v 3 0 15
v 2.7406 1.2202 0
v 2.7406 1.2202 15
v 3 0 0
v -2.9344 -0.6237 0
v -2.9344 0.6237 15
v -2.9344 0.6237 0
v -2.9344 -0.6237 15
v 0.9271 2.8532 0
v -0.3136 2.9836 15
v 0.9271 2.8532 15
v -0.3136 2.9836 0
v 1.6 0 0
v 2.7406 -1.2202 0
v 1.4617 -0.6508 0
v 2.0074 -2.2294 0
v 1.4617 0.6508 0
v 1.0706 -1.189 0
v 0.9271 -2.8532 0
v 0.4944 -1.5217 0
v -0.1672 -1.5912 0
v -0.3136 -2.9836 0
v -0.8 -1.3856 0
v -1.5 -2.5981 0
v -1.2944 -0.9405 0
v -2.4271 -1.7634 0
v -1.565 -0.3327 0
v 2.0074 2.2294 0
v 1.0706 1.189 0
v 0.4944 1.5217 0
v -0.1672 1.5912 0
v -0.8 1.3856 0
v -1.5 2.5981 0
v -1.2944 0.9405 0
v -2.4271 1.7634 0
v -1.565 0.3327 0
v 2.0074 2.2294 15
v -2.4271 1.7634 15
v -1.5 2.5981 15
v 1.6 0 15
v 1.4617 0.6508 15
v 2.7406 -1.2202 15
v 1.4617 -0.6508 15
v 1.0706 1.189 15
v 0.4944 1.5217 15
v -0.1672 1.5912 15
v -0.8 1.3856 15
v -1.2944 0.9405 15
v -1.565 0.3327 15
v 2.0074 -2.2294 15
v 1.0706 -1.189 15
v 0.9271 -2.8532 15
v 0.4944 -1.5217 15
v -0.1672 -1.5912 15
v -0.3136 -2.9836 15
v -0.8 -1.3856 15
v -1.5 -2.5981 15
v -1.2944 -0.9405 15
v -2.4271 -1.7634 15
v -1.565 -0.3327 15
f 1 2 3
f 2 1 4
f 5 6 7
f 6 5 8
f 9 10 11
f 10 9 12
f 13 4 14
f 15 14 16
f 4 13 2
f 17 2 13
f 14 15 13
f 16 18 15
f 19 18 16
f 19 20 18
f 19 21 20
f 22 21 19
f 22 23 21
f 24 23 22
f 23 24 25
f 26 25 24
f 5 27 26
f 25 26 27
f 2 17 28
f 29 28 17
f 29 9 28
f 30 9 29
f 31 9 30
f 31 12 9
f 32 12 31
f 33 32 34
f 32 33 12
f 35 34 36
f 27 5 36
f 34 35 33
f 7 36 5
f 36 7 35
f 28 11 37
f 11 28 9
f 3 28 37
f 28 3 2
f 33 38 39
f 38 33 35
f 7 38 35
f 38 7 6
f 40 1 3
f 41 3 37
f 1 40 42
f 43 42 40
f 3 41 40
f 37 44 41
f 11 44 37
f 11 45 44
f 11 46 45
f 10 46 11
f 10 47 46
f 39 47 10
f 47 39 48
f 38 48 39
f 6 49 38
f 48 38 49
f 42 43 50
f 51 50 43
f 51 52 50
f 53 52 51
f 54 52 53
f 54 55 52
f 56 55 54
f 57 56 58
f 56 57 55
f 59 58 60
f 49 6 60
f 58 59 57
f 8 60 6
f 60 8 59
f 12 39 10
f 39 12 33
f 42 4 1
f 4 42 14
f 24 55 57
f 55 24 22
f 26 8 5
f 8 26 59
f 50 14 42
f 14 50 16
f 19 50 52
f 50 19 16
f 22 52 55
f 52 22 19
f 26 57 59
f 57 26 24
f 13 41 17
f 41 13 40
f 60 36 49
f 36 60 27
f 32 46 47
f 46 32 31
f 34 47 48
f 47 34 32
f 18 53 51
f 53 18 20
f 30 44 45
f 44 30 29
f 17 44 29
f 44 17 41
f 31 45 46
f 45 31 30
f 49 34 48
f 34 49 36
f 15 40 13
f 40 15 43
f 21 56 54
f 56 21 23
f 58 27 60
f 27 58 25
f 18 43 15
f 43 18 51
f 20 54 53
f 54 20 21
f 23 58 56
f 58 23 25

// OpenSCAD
$fn = 15;

spacer_round_15();


module spacer_round_15() {
    difference(){
        cylinder(h=15, r=3);
            cylinder(h=15, r=1.6);
        
    };
}
